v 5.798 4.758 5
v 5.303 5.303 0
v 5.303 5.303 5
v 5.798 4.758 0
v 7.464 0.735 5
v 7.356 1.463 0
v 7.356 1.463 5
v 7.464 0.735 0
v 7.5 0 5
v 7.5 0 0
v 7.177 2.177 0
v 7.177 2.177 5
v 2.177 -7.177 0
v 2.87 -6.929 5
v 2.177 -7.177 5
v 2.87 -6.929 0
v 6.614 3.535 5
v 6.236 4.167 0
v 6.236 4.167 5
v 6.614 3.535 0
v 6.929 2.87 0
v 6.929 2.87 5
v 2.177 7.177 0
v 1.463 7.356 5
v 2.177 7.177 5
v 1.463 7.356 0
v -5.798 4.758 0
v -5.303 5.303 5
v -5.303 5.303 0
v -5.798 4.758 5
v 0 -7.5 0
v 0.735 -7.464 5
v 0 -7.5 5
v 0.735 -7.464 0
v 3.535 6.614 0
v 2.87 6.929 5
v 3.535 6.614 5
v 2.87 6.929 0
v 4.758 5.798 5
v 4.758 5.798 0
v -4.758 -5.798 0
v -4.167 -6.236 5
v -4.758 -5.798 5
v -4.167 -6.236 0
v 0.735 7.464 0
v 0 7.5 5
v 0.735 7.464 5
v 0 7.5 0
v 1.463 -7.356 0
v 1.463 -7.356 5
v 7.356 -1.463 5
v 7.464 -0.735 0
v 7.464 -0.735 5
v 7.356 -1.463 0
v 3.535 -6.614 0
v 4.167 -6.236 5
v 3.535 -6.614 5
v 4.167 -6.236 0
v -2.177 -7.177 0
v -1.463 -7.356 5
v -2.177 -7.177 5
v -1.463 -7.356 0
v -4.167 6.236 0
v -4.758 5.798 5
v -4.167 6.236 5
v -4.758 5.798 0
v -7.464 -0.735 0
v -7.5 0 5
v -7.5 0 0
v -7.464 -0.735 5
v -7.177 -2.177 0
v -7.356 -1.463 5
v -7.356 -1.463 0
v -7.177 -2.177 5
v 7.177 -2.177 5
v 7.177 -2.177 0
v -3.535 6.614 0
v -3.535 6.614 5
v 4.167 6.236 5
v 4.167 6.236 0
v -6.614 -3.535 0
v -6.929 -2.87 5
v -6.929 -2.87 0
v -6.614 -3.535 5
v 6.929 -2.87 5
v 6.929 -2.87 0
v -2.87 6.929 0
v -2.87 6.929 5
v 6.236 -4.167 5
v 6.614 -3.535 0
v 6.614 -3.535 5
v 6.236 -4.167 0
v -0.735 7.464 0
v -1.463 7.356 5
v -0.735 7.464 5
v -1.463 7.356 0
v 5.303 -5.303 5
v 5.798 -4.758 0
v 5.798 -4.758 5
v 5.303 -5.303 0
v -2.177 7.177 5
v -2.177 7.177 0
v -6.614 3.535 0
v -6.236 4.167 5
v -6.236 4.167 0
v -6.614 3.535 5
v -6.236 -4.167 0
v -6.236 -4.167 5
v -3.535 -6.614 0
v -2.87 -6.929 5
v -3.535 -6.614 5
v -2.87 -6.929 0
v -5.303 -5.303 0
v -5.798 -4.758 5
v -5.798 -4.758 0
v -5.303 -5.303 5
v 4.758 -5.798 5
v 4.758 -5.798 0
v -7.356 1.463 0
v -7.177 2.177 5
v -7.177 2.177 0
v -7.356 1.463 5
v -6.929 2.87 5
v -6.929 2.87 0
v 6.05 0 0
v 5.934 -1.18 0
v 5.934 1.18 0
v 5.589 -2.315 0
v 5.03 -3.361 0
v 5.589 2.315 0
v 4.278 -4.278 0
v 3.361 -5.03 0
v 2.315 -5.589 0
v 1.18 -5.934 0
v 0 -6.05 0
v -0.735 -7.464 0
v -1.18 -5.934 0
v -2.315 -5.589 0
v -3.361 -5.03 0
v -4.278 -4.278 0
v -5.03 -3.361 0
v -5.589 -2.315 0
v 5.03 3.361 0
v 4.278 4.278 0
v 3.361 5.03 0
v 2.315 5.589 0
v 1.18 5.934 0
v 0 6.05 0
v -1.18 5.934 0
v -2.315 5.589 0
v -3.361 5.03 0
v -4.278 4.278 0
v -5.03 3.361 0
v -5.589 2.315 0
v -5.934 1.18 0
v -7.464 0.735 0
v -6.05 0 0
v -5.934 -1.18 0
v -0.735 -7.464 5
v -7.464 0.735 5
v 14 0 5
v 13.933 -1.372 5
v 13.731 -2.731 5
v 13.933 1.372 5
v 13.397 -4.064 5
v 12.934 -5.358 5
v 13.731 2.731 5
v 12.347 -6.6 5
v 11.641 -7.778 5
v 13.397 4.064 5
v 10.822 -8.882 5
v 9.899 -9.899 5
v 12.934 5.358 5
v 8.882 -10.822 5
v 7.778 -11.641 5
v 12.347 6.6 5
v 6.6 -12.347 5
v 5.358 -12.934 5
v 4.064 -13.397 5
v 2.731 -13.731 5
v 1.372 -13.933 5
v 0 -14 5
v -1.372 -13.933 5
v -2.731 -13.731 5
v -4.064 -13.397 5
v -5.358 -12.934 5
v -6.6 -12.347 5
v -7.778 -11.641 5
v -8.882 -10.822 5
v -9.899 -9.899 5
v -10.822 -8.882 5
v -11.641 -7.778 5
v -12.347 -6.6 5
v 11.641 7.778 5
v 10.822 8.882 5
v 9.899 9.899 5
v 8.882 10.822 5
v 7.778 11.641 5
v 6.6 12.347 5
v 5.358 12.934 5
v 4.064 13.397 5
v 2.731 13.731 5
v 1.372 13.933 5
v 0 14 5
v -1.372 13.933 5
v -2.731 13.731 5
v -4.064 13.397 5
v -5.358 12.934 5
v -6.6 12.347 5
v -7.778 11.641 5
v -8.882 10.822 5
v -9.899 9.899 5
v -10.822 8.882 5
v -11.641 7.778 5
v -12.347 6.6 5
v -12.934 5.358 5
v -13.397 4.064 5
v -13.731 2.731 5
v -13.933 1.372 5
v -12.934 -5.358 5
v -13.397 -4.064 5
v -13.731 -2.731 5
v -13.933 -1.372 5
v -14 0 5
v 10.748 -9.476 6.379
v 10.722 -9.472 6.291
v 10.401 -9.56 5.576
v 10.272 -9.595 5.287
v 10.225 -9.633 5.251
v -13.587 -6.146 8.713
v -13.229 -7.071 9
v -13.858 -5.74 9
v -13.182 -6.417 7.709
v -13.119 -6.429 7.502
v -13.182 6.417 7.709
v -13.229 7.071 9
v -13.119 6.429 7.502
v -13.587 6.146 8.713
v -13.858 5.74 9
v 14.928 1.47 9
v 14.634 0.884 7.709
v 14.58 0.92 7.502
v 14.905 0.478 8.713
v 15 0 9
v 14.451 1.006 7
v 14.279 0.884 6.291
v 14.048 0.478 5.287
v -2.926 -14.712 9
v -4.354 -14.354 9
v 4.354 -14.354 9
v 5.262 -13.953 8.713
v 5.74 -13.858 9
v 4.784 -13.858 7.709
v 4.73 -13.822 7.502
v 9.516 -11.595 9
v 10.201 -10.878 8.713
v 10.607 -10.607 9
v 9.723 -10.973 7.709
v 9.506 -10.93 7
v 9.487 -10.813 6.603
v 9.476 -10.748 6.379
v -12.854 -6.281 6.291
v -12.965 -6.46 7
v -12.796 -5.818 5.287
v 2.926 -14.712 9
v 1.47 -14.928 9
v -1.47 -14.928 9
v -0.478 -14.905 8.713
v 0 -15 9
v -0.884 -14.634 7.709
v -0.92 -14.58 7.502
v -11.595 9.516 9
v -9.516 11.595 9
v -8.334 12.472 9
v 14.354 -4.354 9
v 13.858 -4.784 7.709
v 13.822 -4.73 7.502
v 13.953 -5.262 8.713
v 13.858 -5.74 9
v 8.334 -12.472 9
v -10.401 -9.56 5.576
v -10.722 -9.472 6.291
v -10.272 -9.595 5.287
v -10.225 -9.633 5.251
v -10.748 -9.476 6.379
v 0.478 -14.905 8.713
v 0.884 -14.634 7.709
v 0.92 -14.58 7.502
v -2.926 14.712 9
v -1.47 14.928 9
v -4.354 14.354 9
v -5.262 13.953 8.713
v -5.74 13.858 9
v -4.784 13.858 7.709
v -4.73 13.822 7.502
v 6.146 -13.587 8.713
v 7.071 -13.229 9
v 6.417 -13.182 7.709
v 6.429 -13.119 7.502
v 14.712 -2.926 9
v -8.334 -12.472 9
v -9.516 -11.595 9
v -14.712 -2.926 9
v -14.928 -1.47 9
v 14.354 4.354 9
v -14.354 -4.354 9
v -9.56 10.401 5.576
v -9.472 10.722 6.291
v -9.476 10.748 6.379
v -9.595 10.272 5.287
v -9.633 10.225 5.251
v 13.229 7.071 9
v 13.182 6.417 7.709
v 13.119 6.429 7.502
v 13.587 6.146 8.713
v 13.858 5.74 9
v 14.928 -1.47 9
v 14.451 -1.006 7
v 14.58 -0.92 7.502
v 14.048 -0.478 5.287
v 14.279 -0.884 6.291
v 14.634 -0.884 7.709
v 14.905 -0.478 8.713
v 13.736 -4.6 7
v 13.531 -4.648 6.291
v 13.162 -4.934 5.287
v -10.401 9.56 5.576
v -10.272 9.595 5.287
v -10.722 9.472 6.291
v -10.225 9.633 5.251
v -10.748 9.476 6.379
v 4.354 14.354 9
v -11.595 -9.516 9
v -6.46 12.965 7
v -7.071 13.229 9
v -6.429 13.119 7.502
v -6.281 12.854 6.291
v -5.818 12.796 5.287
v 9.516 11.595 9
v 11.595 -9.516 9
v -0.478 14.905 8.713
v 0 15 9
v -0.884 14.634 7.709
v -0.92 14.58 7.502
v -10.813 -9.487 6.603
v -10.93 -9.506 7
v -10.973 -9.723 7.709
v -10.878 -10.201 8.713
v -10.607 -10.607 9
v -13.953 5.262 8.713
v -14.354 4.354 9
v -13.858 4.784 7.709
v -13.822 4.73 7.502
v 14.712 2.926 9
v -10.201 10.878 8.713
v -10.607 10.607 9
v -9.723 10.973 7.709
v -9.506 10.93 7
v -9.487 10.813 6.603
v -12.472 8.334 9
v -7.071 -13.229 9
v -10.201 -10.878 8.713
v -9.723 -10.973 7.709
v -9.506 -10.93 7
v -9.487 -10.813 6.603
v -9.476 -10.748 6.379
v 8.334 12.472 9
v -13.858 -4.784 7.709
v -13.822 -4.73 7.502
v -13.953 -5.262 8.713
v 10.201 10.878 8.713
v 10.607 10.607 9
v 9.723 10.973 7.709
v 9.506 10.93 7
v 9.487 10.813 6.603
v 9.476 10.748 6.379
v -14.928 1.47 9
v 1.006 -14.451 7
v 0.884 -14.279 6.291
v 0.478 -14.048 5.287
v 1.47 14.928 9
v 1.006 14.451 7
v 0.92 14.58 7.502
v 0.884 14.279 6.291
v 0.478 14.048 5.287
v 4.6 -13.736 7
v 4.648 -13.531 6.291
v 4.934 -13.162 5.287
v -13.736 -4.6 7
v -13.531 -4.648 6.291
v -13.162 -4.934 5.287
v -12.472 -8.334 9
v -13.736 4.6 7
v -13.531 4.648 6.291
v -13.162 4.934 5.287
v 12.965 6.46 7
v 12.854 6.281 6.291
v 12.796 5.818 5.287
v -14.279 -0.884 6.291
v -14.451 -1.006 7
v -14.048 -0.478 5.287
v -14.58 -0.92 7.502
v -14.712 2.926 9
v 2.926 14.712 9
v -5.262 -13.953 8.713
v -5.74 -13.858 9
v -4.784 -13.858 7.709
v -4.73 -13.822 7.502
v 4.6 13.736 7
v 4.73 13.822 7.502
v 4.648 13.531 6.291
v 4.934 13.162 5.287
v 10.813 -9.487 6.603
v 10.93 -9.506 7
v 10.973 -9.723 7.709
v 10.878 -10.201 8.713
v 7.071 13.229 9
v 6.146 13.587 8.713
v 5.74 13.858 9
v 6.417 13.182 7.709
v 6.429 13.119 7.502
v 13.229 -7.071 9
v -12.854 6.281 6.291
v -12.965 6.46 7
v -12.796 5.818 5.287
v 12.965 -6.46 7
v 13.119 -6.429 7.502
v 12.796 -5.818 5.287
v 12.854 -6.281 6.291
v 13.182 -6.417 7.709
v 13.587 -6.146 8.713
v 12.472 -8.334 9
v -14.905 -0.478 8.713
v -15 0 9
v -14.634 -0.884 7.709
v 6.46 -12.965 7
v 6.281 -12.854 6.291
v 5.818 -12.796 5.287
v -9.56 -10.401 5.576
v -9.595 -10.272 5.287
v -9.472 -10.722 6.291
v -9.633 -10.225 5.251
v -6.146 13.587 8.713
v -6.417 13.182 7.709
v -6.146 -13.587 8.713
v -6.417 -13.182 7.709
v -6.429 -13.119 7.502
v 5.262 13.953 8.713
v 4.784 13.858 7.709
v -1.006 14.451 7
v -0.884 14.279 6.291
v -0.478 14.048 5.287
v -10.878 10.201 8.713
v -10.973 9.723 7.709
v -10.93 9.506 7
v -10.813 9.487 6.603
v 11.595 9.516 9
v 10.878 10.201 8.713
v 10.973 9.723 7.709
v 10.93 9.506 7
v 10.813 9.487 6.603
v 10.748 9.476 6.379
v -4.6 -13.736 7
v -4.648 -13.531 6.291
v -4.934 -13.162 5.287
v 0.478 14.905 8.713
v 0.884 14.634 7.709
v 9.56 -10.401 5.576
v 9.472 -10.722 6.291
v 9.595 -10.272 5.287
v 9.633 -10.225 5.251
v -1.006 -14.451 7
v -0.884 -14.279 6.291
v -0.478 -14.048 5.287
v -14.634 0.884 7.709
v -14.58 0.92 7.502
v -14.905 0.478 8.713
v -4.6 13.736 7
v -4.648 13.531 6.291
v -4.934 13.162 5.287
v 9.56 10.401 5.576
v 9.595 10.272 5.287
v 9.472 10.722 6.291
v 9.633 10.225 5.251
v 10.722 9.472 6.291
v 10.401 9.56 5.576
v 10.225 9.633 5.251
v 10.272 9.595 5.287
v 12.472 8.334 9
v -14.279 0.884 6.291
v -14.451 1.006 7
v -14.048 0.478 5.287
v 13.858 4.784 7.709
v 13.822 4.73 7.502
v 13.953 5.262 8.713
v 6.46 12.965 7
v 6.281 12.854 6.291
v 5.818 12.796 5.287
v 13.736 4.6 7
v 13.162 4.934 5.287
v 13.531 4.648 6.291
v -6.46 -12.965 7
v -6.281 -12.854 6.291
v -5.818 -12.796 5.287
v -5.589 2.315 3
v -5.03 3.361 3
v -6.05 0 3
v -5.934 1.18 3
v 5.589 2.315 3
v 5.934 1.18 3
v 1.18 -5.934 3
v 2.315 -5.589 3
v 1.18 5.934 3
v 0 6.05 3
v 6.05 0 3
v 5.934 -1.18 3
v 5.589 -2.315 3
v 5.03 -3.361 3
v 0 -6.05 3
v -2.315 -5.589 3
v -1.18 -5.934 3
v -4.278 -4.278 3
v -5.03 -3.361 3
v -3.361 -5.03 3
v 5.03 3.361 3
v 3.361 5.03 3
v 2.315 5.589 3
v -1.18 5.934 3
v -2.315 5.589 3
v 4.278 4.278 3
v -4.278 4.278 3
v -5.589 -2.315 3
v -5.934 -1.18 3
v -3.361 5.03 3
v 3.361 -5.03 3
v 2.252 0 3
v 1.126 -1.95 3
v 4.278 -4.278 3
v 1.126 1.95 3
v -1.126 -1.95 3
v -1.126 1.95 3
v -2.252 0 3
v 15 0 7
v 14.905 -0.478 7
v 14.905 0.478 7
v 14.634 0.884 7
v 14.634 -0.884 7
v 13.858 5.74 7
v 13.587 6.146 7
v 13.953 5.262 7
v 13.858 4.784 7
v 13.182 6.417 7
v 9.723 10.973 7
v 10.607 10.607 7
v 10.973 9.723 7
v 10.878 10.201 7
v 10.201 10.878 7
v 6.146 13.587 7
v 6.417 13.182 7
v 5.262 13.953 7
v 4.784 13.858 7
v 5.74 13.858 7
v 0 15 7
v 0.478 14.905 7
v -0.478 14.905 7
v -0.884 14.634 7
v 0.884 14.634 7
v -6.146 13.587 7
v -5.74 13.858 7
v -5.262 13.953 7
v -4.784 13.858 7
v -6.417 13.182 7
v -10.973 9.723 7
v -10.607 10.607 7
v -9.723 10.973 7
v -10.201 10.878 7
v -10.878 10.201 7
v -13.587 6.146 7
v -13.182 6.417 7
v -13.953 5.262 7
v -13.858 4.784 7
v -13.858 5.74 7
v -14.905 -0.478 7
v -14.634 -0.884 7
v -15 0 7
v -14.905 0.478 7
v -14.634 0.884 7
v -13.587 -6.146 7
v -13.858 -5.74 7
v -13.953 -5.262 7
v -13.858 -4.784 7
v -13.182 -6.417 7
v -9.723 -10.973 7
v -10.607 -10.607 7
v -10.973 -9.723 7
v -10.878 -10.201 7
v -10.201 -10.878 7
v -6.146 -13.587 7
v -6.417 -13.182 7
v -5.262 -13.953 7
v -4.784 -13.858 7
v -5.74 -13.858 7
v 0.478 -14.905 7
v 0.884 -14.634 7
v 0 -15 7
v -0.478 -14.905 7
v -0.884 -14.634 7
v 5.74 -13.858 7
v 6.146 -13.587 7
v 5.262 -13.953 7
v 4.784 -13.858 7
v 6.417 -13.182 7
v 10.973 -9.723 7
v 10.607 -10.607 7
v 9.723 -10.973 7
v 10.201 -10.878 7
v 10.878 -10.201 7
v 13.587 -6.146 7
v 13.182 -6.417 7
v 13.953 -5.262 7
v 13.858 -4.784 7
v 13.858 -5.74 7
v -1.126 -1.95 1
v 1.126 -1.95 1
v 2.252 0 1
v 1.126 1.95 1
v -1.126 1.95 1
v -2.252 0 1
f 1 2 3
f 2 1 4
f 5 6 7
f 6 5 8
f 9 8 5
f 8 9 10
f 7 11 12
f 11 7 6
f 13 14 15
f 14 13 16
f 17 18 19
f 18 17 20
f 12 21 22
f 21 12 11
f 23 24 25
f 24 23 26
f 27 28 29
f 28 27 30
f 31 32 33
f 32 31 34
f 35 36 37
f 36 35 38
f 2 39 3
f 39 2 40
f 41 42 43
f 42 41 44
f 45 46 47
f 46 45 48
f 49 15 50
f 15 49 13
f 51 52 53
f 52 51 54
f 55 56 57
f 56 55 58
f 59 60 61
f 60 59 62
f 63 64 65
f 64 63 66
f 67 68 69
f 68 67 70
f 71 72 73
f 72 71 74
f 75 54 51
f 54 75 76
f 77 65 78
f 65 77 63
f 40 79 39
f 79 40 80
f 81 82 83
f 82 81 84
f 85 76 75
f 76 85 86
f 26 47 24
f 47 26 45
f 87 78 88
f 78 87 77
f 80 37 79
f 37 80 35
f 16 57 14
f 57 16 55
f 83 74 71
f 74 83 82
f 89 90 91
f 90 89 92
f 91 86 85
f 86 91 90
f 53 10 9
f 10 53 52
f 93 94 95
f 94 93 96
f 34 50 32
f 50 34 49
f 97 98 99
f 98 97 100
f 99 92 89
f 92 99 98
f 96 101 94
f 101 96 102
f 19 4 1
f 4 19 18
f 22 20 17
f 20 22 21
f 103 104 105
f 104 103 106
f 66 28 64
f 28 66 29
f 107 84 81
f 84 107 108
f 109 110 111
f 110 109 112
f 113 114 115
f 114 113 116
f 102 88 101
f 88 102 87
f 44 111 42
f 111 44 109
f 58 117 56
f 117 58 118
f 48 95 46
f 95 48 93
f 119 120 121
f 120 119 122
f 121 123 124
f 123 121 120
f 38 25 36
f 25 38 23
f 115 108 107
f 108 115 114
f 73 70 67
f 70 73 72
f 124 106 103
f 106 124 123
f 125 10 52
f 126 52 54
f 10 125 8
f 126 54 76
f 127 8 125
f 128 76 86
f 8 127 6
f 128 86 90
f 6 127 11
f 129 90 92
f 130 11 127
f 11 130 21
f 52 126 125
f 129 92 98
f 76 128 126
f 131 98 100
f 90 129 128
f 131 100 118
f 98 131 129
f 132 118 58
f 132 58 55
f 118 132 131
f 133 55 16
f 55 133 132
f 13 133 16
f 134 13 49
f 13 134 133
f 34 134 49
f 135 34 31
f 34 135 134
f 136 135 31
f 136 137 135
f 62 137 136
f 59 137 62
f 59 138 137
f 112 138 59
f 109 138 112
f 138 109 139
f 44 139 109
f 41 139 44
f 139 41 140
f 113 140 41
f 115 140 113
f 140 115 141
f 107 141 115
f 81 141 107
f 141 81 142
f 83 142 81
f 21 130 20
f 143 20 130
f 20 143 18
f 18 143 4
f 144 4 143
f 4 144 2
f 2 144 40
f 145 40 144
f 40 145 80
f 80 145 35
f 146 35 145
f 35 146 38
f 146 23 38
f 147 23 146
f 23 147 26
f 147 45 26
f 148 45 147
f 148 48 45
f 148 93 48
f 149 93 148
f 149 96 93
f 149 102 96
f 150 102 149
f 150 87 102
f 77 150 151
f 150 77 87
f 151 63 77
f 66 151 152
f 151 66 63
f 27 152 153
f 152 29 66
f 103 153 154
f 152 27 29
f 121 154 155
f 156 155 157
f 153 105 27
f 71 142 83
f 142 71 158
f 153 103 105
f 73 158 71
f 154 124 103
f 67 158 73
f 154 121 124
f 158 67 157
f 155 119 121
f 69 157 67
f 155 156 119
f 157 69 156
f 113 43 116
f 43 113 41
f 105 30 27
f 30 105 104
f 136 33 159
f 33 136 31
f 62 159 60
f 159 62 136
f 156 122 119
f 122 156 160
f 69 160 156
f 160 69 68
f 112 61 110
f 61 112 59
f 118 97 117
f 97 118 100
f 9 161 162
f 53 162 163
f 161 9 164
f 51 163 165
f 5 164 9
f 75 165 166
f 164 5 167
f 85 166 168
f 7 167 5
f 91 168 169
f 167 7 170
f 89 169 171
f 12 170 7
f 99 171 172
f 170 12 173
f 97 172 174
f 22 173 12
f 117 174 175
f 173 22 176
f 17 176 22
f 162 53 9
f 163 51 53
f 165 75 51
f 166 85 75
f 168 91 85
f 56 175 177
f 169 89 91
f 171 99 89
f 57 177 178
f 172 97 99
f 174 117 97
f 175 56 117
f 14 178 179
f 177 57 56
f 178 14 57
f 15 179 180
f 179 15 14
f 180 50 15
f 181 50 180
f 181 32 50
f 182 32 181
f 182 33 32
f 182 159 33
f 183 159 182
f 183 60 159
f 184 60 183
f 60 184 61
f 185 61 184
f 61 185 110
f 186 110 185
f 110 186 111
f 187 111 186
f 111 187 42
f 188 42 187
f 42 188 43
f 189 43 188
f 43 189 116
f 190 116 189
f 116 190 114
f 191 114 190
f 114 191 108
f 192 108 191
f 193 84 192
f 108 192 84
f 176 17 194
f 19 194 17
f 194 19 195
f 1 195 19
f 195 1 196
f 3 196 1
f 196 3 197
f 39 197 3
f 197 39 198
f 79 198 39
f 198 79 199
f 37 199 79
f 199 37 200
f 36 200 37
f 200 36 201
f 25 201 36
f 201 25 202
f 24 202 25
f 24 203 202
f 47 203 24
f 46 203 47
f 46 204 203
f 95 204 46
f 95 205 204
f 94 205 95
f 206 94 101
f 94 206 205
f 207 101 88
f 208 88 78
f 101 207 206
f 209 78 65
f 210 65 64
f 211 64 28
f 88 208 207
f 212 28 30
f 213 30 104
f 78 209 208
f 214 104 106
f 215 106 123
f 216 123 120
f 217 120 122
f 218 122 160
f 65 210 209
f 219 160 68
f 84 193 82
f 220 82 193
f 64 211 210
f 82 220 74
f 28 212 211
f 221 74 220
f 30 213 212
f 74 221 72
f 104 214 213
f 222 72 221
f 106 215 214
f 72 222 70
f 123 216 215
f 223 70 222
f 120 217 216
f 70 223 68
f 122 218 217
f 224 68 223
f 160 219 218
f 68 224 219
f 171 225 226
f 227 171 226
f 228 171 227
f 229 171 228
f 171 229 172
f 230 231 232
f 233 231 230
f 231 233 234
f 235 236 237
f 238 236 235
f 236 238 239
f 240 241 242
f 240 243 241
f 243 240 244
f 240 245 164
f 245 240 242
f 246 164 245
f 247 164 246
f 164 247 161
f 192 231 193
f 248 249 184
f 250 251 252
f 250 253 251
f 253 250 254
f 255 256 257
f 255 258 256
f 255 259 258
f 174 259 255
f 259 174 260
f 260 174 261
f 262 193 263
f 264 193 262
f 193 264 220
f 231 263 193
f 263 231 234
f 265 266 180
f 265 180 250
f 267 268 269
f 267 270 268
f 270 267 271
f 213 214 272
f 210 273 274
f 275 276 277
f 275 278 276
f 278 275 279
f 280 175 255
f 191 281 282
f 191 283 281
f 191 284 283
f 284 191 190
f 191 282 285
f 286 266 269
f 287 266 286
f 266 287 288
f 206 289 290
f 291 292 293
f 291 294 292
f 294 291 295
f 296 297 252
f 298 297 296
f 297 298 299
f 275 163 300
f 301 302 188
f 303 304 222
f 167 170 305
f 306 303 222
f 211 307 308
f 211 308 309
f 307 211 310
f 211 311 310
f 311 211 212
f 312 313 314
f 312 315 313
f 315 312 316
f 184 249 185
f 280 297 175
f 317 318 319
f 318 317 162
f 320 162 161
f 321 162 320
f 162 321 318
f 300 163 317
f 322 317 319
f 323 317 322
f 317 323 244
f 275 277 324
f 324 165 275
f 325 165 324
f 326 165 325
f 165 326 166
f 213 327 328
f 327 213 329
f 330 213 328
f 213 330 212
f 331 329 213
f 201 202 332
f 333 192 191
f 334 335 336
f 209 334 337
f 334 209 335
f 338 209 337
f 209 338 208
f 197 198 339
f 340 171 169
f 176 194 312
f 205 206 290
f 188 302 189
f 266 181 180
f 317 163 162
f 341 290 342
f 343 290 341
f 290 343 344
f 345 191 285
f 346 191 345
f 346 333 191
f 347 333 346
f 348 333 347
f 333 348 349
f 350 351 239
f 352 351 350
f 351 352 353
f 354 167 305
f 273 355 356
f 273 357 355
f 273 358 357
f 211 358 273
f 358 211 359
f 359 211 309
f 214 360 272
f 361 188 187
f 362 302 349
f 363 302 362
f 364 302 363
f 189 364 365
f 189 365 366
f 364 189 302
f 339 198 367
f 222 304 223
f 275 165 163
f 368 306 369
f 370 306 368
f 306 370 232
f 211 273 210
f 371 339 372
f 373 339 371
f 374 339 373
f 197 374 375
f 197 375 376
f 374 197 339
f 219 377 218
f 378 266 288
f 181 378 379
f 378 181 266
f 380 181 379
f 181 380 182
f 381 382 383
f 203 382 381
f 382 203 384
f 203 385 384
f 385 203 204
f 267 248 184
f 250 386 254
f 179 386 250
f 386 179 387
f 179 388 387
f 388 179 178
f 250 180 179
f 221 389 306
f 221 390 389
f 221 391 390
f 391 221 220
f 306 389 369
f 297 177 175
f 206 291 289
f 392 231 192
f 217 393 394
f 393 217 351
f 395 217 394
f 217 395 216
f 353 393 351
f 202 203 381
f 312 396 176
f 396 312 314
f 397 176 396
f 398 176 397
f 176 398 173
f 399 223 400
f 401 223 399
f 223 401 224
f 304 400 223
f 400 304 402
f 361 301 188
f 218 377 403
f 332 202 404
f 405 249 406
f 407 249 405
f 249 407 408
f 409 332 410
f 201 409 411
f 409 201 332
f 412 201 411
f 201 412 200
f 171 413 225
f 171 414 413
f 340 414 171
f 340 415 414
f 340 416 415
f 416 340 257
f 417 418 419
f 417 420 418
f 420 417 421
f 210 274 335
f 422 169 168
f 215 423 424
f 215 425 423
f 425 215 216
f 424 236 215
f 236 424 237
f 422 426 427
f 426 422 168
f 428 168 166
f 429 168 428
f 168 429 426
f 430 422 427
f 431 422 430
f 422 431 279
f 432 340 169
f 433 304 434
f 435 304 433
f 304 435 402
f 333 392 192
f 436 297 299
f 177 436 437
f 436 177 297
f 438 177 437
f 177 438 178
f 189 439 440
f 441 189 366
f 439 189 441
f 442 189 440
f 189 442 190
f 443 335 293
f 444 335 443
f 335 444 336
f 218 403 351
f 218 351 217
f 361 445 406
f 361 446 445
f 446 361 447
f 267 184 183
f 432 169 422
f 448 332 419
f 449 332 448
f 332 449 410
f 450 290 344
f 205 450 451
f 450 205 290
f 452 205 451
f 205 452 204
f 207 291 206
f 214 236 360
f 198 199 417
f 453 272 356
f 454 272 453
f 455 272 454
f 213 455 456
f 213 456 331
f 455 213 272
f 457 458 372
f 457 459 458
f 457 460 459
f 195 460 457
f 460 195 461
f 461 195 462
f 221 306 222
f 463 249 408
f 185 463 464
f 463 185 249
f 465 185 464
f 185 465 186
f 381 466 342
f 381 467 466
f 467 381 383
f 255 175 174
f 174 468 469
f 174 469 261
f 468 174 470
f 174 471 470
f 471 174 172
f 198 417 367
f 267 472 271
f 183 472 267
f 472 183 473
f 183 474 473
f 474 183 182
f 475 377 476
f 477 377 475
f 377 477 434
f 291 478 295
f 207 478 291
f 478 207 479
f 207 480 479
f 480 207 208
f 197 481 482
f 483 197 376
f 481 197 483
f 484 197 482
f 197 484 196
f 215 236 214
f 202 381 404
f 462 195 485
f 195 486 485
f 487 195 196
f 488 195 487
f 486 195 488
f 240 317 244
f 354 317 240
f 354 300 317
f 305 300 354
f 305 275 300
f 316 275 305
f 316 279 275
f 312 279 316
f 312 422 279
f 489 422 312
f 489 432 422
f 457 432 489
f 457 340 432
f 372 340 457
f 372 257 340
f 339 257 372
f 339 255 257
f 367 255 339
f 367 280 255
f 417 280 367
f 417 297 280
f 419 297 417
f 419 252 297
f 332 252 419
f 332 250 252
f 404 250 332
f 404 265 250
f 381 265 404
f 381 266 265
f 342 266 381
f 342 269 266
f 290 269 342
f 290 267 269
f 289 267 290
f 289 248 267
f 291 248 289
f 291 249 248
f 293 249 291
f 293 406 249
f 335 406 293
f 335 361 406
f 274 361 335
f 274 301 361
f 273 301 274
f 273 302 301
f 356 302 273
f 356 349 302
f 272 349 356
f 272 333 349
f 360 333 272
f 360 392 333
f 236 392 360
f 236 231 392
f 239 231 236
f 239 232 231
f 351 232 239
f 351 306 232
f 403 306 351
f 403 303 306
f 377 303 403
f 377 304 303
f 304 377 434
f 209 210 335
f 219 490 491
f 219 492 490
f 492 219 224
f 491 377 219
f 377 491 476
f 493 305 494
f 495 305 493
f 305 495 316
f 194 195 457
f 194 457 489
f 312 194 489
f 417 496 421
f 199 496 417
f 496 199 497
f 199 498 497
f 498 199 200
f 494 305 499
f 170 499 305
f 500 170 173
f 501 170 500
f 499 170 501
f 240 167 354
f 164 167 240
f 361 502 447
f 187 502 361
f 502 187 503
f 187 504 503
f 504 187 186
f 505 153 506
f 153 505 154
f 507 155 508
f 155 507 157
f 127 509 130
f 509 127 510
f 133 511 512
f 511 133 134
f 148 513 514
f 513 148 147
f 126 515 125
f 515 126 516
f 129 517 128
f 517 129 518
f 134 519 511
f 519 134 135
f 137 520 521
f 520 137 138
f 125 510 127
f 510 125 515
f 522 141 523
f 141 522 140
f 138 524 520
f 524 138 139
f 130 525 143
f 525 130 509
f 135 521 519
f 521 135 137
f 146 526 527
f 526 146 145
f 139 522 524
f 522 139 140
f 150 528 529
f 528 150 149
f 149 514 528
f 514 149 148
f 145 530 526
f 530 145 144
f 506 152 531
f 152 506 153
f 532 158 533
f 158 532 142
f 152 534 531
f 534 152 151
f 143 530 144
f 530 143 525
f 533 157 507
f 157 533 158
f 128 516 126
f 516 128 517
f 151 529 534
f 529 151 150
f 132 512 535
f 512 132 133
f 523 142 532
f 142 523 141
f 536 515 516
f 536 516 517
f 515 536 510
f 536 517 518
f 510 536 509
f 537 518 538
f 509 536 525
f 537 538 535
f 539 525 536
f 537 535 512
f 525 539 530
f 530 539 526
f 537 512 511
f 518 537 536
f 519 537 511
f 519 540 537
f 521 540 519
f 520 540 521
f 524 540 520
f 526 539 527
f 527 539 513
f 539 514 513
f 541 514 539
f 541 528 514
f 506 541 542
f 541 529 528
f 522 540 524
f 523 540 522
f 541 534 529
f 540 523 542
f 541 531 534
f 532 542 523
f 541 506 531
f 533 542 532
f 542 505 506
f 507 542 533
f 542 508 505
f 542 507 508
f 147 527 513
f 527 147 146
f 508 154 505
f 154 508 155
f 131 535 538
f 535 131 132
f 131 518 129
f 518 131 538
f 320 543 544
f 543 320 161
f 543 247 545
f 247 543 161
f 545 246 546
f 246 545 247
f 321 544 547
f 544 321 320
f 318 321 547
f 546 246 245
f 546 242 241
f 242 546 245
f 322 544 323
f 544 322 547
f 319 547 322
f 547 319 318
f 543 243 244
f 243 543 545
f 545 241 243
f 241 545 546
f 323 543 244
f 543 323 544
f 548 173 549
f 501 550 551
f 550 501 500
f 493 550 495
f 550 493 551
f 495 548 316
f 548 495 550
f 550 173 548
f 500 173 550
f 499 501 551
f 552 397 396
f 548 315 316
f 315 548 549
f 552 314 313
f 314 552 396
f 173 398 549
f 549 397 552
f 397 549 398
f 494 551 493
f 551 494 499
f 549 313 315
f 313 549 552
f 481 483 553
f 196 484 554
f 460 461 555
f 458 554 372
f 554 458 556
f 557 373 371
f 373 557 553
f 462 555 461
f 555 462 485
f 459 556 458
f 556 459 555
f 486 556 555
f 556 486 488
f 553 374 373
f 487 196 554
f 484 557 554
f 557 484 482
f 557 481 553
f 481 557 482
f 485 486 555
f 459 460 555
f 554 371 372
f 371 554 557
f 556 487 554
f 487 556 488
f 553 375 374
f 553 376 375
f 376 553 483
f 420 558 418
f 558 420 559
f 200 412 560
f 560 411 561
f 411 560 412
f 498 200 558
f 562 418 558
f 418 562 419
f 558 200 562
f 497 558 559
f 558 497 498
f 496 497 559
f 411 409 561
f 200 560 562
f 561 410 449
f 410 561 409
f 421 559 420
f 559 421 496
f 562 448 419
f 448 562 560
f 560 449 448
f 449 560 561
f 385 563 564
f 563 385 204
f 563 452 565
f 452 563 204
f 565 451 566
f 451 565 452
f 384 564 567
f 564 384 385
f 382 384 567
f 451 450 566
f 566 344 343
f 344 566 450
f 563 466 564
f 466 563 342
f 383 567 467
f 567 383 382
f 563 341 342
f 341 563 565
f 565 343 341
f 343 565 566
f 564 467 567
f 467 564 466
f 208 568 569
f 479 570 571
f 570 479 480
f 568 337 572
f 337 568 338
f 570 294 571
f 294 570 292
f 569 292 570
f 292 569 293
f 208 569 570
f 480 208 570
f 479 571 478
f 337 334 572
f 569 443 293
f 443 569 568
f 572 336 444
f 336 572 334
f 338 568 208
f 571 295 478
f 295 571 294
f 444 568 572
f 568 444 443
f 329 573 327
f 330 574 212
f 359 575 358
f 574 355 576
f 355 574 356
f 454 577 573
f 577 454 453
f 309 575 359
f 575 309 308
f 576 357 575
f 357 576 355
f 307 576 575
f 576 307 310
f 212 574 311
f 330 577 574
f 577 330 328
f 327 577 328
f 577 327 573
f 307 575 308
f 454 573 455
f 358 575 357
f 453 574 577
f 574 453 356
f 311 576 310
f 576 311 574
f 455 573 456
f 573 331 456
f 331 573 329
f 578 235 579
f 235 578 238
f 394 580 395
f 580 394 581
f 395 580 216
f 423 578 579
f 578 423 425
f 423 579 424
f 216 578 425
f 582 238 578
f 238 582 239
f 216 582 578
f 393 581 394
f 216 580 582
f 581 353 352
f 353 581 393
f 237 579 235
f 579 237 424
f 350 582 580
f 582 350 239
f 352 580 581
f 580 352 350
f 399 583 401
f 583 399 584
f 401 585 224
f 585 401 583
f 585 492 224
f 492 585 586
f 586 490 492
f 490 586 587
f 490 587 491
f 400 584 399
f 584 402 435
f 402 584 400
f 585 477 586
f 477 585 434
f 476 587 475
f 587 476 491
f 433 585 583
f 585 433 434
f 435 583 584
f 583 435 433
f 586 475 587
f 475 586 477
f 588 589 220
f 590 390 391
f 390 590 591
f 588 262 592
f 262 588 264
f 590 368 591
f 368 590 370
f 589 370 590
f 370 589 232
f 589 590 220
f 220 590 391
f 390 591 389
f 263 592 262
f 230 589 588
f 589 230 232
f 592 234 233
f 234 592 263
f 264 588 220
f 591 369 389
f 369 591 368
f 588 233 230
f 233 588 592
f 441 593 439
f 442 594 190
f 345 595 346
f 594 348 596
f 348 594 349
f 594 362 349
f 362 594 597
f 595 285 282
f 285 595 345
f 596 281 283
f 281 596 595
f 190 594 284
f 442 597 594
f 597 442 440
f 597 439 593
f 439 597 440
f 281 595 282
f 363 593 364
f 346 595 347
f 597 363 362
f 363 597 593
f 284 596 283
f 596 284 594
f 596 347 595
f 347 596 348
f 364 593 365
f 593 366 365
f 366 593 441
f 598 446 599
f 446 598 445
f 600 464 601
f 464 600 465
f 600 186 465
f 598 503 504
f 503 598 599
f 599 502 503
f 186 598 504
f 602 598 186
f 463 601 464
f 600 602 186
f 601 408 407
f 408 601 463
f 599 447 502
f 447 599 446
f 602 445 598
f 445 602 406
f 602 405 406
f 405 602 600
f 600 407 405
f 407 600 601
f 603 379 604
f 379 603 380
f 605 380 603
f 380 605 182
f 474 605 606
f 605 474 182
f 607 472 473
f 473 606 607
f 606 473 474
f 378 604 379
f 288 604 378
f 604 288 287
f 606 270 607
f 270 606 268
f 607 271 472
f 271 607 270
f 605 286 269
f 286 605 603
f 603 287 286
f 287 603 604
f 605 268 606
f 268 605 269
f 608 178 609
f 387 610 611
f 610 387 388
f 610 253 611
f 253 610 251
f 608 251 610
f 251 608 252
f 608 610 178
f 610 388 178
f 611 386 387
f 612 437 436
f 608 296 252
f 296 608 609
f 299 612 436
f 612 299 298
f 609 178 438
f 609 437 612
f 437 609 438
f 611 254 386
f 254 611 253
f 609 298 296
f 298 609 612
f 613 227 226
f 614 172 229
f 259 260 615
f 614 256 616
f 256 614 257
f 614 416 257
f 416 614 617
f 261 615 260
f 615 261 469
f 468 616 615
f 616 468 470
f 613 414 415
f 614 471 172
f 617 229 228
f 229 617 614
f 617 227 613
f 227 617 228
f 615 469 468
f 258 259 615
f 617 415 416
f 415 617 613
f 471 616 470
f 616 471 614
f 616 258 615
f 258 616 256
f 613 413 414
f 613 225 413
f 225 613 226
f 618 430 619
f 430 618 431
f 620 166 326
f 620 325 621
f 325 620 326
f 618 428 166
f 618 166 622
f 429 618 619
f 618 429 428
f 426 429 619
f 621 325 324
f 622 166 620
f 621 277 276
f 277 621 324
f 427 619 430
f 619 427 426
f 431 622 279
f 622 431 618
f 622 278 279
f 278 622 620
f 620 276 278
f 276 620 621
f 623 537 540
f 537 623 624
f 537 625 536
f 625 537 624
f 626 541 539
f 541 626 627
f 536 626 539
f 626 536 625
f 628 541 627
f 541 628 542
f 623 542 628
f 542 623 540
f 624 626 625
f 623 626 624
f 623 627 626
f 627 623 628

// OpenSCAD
// Turning Knob with Hex 4 Protrusion
// Designed to be printed upside down with hex protrusion at top
// Base puck + flared knob with ridges for grip + hex 4 protrusion

use <bbs/threads.scad>

// Parameters
puck_height = 5;       // 1cm puck height
hex_protrusion_length = 2;  // 2mm hex protrusion length
knob_height = 4;        // Height of the knob portion

puck_diameter = 15;     // Diameter of the base puck
knob_base_diameter = 28; // Knob starts at this diameter
knob_top_diameter = 30;  // Knob flares out to this diameter

// Hex 4 parameters
hex_size = 4;           // 4mm hex across flats
hex_tolerance = 0.1;    // Tolerance for hex fit

// Screw head recession parameters
screw_head_diameter = 12;  // 11.8mm diameter for screw head
screw_head_depth = 3;        // 4mm deep recession (>3mm as requested)
screw_head_tolerance = 0.1; // Tolerance for screw head fit

// Ridge parameters
ridge_count = 16;        // Number of ridges around circumference
ridge_depth = 2.5;       // How deep the ridges cut into the surface
ridge_width = 2;         // Width of each ridge

// Main knob shape
module knob_body() {
    difference() {
        union() {
            // Base puck (cylinder)
            cylinder(h = puck_height, d = puck_diameter, $fn = 64);
            
            // Flared knob portion
            translate([0, 0, puck_height]) {
                cylinder(h = knob_height, 
                        d1 = knob_base_diameter, 
                        d2 = knob_top_diameter, 
                        $fn = 64);
            }
        }
        
        // Screw head recession
        translate([0, 0, -0.01]) {
            cylinder(h = screw_head_depth + 0.01, 
                    d = screw_head_diameter + screw_head_tolerance, 
                    $fn = 32);
        }
    }
}

// Ridges for grip
module grip_ridges() {
    for (i = [0 : ridge_count - 1]) {
        rotate([0, 0, i * 360 / ridge_count]) {
            translate([0, 0, puck_height]) {
                // Create vertical ridge along the flared surface
                hull() {
                    translate([knob_base_diameter/2 - ridge_depth/2, 0, 0]) {
                        cylinder(h = ridge_width, d = ridge_depth, $fn = 16);
                    }
                    translate([knob_top_diameter/2 - ridge_depth/2, 0, knob_height - ridge_width]) {
                        cylinder(h = ridge_width, d = ridge_depth, $fn = 16);
                    }
                }
            }
        }
    }
}

// Hex 4 protrusion
module hex_protrusion() {
    translate([0, 0, screw_head_depth - hex_protrusion_length]) {
        cylinder(h = hex_protrusion_length, 
                d = (hex_size - hex_tolerance) / cos(30), 
                $fn = 6);
    }
}

// Main module
module turning_knob_hex4() {
    union() {
        knob_body();
        grip_ridges();
        hex_protrusion();
    }
}

// Render the part
turning_knob_hex4(); 
